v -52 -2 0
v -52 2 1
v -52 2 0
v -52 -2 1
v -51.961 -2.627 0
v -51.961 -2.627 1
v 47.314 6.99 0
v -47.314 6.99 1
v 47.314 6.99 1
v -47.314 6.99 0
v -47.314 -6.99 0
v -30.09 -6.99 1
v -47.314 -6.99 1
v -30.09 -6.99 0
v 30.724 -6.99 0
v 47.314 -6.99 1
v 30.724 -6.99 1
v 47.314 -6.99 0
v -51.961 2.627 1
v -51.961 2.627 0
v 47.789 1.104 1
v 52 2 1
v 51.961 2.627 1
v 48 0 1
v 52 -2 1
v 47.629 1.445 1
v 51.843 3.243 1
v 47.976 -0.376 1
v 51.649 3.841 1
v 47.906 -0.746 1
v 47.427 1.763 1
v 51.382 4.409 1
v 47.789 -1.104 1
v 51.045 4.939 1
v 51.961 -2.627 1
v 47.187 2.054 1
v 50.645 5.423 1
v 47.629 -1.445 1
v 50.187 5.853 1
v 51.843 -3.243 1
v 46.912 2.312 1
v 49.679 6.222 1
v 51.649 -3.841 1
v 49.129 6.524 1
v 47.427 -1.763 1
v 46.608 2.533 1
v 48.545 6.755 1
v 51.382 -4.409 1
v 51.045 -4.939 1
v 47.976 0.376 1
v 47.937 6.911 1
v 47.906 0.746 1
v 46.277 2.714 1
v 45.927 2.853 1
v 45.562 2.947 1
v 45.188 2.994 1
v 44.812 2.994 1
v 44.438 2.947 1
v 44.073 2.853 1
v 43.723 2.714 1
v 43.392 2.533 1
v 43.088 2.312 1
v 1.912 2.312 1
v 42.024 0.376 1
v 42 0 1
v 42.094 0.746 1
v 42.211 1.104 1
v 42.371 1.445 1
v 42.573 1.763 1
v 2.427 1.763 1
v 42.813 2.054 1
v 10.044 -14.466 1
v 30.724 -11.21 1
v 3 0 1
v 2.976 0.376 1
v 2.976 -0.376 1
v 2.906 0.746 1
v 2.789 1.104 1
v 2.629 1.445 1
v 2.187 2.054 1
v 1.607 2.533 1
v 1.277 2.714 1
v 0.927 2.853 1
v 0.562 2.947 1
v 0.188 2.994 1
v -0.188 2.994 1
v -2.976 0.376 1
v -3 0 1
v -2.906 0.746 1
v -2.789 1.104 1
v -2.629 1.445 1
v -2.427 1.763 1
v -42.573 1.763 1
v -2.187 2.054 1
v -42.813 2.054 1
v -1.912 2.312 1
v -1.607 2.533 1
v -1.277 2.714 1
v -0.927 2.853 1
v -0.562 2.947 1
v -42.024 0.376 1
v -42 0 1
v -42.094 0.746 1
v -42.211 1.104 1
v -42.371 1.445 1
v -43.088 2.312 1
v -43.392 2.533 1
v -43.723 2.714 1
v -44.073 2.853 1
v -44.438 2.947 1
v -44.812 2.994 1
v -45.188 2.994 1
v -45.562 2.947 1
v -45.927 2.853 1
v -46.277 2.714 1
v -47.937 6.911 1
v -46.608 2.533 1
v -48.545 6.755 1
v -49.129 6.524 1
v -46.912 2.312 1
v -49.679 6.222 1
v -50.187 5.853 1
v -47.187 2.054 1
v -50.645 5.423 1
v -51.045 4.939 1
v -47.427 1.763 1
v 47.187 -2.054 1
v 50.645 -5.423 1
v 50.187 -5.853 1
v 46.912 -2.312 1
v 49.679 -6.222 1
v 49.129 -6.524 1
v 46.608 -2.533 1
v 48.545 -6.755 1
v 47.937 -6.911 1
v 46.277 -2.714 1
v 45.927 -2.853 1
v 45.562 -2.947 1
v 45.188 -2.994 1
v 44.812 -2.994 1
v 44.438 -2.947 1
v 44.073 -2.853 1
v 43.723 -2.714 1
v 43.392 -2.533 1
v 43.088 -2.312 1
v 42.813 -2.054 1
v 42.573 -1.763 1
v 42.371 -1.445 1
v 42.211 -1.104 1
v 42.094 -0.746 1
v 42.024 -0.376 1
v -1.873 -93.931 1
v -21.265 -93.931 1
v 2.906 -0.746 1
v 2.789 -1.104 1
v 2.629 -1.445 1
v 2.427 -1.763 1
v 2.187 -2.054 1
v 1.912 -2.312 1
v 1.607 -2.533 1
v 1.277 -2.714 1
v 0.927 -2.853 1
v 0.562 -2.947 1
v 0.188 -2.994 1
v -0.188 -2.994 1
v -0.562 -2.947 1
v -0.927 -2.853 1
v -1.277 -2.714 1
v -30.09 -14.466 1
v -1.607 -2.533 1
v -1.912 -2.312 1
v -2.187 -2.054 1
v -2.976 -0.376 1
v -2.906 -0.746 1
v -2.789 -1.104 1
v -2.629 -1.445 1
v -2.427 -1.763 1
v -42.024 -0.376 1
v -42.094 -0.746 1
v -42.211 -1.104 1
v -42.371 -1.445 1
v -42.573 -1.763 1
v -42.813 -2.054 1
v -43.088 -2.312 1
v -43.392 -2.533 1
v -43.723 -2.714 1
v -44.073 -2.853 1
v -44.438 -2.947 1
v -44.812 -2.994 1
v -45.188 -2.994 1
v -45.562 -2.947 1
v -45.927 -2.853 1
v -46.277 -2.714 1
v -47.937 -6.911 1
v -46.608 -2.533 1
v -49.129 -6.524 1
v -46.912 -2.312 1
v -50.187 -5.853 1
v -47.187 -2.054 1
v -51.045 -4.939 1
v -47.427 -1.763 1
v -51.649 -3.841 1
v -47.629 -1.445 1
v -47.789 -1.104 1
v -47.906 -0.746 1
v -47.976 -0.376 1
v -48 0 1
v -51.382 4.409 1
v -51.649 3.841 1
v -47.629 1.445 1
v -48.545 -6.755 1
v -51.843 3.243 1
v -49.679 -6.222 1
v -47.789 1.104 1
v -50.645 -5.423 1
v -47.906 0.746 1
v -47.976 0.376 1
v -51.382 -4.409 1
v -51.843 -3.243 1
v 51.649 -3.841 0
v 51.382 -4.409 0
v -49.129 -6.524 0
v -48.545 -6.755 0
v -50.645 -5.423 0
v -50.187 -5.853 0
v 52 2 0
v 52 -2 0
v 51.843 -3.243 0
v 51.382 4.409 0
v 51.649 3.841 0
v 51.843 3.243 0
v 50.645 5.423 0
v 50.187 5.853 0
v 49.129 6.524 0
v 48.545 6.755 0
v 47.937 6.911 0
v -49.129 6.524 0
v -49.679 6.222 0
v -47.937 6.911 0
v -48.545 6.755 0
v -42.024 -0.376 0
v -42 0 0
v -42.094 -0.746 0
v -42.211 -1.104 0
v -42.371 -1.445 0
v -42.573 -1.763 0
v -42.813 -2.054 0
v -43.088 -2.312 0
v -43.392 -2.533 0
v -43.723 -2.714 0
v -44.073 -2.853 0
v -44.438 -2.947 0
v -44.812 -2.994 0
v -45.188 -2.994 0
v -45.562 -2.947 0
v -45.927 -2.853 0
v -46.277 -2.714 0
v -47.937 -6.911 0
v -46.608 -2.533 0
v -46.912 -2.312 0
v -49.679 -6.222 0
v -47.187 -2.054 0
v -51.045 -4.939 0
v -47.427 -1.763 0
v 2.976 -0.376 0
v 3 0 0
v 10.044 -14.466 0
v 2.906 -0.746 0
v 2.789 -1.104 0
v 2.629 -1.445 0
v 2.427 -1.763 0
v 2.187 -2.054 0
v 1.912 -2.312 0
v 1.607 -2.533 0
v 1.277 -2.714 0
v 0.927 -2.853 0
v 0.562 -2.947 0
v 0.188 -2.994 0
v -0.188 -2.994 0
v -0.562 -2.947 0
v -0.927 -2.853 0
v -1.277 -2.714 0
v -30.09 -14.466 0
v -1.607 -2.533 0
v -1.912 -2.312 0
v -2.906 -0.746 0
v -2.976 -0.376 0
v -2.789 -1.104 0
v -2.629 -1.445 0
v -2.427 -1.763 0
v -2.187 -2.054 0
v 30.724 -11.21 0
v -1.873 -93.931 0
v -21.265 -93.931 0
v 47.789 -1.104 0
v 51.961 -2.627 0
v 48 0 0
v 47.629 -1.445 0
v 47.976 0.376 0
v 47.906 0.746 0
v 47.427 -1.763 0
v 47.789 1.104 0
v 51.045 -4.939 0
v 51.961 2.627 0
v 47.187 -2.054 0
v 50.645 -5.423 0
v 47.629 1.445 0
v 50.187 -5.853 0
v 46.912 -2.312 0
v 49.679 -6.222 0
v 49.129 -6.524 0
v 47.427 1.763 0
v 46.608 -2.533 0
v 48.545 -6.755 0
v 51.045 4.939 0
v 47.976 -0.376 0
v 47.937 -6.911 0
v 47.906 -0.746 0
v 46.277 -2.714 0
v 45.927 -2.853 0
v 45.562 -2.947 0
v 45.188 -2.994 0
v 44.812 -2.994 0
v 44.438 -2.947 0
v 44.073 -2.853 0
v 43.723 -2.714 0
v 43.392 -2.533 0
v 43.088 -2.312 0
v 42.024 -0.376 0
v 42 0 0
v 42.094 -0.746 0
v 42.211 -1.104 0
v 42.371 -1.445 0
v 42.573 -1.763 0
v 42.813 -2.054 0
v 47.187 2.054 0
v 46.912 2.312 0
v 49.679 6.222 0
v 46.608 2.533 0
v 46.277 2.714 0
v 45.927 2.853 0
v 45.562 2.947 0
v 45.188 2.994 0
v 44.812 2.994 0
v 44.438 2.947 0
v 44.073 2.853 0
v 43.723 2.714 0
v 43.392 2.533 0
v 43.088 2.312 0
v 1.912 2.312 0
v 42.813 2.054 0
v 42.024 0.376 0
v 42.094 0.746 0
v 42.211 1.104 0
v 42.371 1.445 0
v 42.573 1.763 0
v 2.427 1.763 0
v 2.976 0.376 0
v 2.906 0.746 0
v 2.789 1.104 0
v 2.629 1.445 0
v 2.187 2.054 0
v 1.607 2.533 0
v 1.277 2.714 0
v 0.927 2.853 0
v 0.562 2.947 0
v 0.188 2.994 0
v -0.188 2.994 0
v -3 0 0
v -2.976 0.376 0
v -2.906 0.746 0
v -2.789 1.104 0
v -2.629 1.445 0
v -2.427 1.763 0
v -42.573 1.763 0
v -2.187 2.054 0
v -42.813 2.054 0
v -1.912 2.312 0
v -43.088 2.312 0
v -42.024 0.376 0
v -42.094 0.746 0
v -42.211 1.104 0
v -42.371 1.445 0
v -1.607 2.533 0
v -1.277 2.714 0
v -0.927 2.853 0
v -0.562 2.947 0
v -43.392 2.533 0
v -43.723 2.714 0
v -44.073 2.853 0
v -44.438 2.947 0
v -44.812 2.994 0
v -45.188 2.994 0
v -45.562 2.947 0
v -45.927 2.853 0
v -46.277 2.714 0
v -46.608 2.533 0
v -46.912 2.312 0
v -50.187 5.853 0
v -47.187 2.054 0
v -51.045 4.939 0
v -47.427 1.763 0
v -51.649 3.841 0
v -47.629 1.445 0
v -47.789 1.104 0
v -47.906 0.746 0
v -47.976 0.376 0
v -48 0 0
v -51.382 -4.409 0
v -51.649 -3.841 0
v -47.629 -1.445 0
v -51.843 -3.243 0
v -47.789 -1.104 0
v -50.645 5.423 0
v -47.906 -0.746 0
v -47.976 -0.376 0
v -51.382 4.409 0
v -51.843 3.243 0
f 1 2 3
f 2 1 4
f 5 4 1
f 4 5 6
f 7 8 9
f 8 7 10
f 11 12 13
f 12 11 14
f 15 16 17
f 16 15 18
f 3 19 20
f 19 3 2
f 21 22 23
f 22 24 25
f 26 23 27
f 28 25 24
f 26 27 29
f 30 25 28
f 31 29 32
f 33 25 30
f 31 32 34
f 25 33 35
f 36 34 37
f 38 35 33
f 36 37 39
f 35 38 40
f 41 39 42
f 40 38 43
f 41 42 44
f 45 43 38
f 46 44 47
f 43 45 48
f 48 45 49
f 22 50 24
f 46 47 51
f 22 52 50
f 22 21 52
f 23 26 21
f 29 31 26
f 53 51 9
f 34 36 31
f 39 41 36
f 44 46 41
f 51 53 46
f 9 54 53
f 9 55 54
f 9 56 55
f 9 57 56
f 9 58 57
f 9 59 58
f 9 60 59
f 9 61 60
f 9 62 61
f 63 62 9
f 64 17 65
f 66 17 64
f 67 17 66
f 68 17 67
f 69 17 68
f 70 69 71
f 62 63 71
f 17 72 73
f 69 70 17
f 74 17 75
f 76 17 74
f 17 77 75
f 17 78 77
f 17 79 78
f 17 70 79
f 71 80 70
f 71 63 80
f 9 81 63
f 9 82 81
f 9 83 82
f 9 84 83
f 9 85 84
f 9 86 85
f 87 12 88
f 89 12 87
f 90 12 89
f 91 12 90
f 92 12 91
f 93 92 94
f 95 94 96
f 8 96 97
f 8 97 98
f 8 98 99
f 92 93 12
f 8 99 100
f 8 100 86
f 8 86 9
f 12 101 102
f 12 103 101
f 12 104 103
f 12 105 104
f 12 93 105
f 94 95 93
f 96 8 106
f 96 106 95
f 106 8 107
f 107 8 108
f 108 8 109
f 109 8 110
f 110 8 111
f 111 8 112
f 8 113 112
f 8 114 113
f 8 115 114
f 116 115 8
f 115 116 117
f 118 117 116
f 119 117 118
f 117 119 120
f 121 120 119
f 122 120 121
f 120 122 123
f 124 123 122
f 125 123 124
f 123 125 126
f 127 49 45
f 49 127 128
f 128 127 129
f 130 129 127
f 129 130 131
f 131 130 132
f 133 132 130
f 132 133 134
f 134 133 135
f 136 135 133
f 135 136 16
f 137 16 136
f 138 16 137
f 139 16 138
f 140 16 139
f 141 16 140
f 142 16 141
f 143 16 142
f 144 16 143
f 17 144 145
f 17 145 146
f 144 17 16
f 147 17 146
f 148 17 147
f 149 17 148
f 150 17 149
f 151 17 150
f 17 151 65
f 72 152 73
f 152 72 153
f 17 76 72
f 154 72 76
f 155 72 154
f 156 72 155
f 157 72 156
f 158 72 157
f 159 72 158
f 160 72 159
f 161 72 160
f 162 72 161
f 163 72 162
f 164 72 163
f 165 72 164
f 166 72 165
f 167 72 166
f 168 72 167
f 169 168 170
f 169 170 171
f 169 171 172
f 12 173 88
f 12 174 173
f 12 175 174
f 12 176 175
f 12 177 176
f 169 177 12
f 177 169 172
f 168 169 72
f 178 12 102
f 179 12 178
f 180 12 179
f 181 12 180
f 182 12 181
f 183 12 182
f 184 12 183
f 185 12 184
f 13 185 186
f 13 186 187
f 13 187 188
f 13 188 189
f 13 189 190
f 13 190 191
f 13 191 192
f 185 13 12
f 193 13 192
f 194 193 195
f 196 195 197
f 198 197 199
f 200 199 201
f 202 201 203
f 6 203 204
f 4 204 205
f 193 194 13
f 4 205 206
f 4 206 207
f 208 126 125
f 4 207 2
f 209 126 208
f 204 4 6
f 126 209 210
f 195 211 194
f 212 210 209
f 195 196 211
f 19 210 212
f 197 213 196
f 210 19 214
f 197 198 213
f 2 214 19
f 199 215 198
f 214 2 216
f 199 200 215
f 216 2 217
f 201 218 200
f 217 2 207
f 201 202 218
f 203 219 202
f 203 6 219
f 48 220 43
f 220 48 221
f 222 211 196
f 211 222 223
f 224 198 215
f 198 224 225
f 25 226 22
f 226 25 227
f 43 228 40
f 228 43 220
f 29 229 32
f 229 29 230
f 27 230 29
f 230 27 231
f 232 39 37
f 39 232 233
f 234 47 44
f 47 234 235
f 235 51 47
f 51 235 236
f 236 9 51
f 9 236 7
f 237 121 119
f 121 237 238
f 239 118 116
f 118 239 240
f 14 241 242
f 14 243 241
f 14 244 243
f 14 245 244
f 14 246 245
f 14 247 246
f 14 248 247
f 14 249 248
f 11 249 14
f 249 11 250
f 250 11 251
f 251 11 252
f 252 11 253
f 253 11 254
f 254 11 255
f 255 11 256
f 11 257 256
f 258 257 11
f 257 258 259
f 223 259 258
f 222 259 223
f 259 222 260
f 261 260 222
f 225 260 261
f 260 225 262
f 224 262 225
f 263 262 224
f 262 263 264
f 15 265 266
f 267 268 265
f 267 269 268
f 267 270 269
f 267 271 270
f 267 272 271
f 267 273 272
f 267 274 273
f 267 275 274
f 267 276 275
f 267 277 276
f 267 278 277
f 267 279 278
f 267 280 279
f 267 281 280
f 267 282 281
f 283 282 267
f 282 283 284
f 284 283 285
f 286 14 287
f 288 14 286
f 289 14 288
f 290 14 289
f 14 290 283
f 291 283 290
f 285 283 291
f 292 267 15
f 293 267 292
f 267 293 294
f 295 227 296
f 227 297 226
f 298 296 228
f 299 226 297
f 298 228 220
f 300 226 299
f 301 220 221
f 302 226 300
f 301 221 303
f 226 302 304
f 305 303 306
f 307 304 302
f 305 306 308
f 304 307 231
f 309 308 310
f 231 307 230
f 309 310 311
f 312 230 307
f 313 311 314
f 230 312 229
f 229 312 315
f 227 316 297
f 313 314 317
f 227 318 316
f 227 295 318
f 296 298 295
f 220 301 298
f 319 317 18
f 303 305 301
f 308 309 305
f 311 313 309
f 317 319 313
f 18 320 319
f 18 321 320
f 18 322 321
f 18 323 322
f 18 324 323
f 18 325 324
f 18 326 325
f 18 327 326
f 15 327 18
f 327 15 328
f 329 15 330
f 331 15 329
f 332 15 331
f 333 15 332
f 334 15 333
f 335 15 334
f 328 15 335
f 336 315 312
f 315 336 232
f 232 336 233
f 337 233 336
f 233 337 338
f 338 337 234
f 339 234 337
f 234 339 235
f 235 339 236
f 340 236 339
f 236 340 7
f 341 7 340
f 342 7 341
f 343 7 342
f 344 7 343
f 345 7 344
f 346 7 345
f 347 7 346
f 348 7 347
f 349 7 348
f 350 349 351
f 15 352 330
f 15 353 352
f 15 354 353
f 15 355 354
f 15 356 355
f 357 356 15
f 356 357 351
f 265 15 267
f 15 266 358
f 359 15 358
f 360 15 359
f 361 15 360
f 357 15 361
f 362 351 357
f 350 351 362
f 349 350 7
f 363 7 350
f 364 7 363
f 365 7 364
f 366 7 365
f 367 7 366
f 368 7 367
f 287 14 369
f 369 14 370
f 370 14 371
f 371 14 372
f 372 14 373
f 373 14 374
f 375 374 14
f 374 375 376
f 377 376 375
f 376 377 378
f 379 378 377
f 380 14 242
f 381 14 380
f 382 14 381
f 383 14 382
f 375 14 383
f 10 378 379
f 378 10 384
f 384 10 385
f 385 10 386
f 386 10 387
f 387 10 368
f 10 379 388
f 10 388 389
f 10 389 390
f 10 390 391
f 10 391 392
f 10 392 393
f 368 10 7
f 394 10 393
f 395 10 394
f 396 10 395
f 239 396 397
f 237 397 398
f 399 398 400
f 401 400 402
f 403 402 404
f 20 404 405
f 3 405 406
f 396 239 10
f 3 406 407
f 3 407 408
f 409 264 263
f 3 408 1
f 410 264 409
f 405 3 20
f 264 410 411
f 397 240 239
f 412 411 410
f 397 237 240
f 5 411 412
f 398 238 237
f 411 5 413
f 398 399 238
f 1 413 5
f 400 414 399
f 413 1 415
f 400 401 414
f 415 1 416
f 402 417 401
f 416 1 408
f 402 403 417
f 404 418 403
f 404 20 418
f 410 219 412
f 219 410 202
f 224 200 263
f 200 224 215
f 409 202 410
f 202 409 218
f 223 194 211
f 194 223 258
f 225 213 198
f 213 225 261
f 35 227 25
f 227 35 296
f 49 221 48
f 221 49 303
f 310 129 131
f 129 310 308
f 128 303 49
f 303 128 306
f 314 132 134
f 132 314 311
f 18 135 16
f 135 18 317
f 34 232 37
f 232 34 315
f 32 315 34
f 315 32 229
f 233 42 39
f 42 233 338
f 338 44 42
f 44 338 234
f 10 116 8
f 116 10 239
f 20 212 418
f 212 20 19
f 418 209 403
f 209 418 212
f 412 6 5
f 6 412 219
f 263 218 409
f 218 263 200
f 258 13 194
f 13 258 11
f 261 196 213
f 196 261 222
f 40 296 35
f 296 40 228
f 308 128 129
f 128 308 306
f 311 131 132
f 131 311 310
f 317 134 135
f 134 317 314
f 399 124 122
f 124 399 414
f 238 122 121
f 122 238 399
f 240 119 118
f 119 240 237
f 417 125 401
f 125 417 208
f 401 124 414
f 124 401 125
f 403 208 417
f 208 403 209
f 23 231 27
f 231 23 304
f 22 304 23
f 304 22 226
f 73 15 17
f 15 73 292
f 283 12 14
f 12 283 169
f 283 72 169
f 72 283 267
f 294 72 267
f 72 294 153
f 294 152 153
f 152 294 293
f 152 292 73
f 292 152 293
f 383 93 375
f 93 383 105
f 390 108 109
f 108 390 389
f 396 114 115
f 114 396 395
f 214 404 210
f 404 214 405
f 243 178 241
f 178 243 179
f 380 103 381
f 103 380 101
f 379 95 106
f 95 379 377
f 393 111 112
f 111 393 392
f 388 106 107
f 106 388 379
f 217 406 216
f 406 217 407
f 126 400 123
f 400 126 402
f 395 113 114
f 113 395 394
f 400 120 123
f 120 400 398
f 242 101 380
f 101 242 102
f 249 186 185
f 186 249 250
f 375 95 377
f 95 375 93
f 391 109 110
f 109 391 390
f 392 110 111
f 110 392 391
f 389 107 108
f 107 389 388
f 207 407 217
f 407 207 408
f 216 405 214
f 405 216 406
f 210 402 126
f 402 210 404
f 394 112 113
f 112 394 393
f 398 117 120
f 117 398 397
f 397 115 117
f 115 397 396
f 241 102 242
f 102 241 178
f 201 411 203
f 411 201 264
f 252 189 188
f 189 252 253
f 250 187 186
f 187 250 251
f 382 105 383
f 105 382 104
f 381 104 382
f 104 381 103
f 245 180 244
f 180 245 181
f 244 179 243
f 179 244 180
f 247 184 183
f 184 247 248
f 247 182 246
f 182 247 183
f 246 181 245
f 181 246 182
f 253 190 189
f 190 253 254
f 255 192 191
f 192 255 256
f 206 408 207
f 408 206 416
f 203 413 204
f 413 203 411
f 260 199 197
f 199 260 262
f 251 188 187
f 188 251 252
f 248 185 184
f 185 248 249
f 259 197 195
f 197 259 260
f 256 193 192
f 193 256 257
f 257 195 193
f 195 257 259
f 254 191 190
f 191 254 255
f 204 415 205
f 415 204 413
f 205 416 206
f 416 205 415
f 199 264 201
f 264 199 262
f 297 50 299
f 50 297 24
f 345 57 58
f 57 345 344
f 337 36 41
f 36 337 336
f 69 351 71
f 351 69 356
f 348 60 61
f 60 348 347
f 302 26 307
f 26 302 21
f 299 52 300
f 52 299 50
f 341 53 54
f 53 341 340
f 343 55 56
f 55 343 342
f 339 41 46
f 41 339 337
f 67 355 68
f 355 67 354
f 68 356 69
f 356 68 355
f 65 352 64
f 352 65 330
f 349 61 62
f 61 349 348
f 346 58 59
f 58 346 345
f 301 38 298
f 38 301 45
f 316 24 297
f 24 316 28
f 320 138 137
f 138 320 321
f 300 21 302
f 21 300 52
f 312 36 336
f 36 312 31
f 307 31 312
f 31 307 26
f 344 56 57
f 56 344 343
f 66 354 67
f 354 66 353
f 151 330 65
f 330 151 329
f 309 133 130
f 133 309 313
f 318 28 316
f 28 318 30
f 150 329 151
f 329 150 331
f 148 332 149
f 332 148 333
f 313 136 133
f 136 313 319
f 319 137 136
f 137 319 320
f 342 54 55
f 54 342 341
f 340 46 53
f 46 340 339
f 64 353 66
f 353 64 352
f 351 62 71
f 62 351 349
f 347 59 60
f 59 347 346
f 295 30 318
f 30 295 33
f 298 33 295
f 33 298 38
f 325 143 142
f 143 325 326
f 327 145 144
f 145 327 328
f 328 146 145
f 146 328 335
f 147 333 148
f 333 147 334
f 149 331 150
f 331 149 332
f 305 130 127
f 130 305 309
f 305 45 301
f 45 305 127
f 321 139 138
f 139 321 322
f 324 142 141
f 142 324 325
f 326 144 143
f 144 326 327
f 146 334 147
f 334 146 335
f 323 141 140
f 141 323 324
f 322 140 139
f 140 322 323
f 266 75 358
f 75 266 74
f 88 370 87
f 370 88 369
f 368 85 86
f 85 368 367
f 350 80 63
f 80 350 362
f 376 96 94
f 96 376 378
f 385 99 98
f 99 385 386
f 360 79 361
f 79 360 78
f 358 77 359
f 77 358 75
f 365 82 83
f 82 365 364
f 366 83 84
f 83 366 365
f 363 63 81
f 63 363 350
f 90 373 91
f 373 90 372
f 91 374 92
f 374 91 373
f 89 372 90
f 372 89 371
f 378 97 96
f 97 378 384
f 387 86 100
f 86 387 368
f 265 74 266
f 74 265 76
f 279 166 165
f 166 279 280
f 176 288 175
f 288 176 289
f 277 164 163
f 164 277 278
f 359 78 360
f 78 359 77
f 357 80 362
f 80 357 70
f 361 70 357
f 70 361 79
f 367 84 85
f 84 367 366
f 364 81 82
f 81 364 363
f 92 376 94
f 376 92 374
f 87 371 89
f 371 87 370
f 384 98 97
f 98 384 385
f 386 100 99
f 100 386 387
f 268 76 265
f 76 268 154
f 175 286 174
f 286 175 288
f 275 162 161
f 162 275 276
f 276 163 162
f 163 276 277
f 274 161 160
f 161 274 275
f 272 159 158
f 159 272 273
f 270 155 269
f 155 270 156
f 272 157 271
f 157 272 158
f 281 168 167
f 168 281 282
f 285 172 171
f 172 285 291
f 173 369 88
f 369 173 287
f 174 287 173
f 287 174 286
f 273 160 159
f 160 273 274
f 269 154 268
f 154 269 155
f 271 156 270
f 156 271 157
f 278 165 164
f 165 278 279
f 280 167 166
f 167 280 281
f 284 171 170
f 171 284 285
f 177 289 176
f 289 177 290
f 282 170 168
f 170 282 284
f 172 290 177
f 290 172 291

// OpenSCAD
$fn = 50;


difference() {
	union() {
		translate(v = [0, 0, 0]) {
			rotate(a = [0, 0, 0]) {
				hull() {
					translate(v = [-47.0000000000, 2.0000000000, 0]) {
						rotate(a = [0, 0, 0]) {
							translate(v = [0, 0, 0]) {
								rotate(a = [0, 0, 0]) {
									cylinder(h = 1, r = 5);
								}
							}
						}
					}
					translate(v = [47.0000000000, 2.0000000000, 0]) {
						rotate(a = [0, 0, 0]) {
							translate(v = [0, 0, 0]) {
								rotate(a = [0, 0, 0]) {
									cylinder(h = 1, r = 5);
								}
							}
						}
					}
					translate(v = [-47.0000000000, -2.0000000000, 0]) {
						rotate(a = [0, 0, 0]) {
							translate(v = [0, 0, 0]) {
								rotate(a = [0, 0, 0]) {
									cylinder(h = 1, r = 5);
								}
							}
						}
					}
					translate(v = [47.0000000000, -2.0000000000, 0]) {
						rotate(a = [0, 0, 0]) {
							translate(v = [0, 0, 0]) {
								rotate(a = [0, 0, 0]) {
									cylinder(h = 1, r = 5);
								}
							}
						}
					}
				}
			}
		}
		translate(v = [0, 0, 0]) {
			rotate(a = [0, 0, 0]) {
				linear_extrude(height = 1) {
					text(font = "DejaVu Sans Mono:style=Bold", halign = "center", size = 95, text = "7", valign = "top");
				}
			}
		}
	}
	union() {
		translate(v = [-45.0000000000, 0.0000000000, -125.0000000000]) {
			rotate(a = [0, 0, 0]) {
				cylinder(h = 250, r = 3.0000000000);
			}
		}
		translate(v = [45.0000000000, 0.0000000000, -125.0000000000]) {
			rotate(a = [0, 0, 0]) {
				cylinder(h = 250, r = 3.0000000000);
			}
		}
		translate(v = [45.0000000000, 0.0000000000, -125.0000000000]) {
			rotate(a = [0, 0, 0]) {
				cylinder(h = 250, r = 3.0000000000);
			}
		}
		translate(v = [0, 0, -125.0000000000]) {
			rotate(a = [0, 0, 0]) {
				cylinder(h = 250, r = 3.0000000000);
			}
		}
	}
}
